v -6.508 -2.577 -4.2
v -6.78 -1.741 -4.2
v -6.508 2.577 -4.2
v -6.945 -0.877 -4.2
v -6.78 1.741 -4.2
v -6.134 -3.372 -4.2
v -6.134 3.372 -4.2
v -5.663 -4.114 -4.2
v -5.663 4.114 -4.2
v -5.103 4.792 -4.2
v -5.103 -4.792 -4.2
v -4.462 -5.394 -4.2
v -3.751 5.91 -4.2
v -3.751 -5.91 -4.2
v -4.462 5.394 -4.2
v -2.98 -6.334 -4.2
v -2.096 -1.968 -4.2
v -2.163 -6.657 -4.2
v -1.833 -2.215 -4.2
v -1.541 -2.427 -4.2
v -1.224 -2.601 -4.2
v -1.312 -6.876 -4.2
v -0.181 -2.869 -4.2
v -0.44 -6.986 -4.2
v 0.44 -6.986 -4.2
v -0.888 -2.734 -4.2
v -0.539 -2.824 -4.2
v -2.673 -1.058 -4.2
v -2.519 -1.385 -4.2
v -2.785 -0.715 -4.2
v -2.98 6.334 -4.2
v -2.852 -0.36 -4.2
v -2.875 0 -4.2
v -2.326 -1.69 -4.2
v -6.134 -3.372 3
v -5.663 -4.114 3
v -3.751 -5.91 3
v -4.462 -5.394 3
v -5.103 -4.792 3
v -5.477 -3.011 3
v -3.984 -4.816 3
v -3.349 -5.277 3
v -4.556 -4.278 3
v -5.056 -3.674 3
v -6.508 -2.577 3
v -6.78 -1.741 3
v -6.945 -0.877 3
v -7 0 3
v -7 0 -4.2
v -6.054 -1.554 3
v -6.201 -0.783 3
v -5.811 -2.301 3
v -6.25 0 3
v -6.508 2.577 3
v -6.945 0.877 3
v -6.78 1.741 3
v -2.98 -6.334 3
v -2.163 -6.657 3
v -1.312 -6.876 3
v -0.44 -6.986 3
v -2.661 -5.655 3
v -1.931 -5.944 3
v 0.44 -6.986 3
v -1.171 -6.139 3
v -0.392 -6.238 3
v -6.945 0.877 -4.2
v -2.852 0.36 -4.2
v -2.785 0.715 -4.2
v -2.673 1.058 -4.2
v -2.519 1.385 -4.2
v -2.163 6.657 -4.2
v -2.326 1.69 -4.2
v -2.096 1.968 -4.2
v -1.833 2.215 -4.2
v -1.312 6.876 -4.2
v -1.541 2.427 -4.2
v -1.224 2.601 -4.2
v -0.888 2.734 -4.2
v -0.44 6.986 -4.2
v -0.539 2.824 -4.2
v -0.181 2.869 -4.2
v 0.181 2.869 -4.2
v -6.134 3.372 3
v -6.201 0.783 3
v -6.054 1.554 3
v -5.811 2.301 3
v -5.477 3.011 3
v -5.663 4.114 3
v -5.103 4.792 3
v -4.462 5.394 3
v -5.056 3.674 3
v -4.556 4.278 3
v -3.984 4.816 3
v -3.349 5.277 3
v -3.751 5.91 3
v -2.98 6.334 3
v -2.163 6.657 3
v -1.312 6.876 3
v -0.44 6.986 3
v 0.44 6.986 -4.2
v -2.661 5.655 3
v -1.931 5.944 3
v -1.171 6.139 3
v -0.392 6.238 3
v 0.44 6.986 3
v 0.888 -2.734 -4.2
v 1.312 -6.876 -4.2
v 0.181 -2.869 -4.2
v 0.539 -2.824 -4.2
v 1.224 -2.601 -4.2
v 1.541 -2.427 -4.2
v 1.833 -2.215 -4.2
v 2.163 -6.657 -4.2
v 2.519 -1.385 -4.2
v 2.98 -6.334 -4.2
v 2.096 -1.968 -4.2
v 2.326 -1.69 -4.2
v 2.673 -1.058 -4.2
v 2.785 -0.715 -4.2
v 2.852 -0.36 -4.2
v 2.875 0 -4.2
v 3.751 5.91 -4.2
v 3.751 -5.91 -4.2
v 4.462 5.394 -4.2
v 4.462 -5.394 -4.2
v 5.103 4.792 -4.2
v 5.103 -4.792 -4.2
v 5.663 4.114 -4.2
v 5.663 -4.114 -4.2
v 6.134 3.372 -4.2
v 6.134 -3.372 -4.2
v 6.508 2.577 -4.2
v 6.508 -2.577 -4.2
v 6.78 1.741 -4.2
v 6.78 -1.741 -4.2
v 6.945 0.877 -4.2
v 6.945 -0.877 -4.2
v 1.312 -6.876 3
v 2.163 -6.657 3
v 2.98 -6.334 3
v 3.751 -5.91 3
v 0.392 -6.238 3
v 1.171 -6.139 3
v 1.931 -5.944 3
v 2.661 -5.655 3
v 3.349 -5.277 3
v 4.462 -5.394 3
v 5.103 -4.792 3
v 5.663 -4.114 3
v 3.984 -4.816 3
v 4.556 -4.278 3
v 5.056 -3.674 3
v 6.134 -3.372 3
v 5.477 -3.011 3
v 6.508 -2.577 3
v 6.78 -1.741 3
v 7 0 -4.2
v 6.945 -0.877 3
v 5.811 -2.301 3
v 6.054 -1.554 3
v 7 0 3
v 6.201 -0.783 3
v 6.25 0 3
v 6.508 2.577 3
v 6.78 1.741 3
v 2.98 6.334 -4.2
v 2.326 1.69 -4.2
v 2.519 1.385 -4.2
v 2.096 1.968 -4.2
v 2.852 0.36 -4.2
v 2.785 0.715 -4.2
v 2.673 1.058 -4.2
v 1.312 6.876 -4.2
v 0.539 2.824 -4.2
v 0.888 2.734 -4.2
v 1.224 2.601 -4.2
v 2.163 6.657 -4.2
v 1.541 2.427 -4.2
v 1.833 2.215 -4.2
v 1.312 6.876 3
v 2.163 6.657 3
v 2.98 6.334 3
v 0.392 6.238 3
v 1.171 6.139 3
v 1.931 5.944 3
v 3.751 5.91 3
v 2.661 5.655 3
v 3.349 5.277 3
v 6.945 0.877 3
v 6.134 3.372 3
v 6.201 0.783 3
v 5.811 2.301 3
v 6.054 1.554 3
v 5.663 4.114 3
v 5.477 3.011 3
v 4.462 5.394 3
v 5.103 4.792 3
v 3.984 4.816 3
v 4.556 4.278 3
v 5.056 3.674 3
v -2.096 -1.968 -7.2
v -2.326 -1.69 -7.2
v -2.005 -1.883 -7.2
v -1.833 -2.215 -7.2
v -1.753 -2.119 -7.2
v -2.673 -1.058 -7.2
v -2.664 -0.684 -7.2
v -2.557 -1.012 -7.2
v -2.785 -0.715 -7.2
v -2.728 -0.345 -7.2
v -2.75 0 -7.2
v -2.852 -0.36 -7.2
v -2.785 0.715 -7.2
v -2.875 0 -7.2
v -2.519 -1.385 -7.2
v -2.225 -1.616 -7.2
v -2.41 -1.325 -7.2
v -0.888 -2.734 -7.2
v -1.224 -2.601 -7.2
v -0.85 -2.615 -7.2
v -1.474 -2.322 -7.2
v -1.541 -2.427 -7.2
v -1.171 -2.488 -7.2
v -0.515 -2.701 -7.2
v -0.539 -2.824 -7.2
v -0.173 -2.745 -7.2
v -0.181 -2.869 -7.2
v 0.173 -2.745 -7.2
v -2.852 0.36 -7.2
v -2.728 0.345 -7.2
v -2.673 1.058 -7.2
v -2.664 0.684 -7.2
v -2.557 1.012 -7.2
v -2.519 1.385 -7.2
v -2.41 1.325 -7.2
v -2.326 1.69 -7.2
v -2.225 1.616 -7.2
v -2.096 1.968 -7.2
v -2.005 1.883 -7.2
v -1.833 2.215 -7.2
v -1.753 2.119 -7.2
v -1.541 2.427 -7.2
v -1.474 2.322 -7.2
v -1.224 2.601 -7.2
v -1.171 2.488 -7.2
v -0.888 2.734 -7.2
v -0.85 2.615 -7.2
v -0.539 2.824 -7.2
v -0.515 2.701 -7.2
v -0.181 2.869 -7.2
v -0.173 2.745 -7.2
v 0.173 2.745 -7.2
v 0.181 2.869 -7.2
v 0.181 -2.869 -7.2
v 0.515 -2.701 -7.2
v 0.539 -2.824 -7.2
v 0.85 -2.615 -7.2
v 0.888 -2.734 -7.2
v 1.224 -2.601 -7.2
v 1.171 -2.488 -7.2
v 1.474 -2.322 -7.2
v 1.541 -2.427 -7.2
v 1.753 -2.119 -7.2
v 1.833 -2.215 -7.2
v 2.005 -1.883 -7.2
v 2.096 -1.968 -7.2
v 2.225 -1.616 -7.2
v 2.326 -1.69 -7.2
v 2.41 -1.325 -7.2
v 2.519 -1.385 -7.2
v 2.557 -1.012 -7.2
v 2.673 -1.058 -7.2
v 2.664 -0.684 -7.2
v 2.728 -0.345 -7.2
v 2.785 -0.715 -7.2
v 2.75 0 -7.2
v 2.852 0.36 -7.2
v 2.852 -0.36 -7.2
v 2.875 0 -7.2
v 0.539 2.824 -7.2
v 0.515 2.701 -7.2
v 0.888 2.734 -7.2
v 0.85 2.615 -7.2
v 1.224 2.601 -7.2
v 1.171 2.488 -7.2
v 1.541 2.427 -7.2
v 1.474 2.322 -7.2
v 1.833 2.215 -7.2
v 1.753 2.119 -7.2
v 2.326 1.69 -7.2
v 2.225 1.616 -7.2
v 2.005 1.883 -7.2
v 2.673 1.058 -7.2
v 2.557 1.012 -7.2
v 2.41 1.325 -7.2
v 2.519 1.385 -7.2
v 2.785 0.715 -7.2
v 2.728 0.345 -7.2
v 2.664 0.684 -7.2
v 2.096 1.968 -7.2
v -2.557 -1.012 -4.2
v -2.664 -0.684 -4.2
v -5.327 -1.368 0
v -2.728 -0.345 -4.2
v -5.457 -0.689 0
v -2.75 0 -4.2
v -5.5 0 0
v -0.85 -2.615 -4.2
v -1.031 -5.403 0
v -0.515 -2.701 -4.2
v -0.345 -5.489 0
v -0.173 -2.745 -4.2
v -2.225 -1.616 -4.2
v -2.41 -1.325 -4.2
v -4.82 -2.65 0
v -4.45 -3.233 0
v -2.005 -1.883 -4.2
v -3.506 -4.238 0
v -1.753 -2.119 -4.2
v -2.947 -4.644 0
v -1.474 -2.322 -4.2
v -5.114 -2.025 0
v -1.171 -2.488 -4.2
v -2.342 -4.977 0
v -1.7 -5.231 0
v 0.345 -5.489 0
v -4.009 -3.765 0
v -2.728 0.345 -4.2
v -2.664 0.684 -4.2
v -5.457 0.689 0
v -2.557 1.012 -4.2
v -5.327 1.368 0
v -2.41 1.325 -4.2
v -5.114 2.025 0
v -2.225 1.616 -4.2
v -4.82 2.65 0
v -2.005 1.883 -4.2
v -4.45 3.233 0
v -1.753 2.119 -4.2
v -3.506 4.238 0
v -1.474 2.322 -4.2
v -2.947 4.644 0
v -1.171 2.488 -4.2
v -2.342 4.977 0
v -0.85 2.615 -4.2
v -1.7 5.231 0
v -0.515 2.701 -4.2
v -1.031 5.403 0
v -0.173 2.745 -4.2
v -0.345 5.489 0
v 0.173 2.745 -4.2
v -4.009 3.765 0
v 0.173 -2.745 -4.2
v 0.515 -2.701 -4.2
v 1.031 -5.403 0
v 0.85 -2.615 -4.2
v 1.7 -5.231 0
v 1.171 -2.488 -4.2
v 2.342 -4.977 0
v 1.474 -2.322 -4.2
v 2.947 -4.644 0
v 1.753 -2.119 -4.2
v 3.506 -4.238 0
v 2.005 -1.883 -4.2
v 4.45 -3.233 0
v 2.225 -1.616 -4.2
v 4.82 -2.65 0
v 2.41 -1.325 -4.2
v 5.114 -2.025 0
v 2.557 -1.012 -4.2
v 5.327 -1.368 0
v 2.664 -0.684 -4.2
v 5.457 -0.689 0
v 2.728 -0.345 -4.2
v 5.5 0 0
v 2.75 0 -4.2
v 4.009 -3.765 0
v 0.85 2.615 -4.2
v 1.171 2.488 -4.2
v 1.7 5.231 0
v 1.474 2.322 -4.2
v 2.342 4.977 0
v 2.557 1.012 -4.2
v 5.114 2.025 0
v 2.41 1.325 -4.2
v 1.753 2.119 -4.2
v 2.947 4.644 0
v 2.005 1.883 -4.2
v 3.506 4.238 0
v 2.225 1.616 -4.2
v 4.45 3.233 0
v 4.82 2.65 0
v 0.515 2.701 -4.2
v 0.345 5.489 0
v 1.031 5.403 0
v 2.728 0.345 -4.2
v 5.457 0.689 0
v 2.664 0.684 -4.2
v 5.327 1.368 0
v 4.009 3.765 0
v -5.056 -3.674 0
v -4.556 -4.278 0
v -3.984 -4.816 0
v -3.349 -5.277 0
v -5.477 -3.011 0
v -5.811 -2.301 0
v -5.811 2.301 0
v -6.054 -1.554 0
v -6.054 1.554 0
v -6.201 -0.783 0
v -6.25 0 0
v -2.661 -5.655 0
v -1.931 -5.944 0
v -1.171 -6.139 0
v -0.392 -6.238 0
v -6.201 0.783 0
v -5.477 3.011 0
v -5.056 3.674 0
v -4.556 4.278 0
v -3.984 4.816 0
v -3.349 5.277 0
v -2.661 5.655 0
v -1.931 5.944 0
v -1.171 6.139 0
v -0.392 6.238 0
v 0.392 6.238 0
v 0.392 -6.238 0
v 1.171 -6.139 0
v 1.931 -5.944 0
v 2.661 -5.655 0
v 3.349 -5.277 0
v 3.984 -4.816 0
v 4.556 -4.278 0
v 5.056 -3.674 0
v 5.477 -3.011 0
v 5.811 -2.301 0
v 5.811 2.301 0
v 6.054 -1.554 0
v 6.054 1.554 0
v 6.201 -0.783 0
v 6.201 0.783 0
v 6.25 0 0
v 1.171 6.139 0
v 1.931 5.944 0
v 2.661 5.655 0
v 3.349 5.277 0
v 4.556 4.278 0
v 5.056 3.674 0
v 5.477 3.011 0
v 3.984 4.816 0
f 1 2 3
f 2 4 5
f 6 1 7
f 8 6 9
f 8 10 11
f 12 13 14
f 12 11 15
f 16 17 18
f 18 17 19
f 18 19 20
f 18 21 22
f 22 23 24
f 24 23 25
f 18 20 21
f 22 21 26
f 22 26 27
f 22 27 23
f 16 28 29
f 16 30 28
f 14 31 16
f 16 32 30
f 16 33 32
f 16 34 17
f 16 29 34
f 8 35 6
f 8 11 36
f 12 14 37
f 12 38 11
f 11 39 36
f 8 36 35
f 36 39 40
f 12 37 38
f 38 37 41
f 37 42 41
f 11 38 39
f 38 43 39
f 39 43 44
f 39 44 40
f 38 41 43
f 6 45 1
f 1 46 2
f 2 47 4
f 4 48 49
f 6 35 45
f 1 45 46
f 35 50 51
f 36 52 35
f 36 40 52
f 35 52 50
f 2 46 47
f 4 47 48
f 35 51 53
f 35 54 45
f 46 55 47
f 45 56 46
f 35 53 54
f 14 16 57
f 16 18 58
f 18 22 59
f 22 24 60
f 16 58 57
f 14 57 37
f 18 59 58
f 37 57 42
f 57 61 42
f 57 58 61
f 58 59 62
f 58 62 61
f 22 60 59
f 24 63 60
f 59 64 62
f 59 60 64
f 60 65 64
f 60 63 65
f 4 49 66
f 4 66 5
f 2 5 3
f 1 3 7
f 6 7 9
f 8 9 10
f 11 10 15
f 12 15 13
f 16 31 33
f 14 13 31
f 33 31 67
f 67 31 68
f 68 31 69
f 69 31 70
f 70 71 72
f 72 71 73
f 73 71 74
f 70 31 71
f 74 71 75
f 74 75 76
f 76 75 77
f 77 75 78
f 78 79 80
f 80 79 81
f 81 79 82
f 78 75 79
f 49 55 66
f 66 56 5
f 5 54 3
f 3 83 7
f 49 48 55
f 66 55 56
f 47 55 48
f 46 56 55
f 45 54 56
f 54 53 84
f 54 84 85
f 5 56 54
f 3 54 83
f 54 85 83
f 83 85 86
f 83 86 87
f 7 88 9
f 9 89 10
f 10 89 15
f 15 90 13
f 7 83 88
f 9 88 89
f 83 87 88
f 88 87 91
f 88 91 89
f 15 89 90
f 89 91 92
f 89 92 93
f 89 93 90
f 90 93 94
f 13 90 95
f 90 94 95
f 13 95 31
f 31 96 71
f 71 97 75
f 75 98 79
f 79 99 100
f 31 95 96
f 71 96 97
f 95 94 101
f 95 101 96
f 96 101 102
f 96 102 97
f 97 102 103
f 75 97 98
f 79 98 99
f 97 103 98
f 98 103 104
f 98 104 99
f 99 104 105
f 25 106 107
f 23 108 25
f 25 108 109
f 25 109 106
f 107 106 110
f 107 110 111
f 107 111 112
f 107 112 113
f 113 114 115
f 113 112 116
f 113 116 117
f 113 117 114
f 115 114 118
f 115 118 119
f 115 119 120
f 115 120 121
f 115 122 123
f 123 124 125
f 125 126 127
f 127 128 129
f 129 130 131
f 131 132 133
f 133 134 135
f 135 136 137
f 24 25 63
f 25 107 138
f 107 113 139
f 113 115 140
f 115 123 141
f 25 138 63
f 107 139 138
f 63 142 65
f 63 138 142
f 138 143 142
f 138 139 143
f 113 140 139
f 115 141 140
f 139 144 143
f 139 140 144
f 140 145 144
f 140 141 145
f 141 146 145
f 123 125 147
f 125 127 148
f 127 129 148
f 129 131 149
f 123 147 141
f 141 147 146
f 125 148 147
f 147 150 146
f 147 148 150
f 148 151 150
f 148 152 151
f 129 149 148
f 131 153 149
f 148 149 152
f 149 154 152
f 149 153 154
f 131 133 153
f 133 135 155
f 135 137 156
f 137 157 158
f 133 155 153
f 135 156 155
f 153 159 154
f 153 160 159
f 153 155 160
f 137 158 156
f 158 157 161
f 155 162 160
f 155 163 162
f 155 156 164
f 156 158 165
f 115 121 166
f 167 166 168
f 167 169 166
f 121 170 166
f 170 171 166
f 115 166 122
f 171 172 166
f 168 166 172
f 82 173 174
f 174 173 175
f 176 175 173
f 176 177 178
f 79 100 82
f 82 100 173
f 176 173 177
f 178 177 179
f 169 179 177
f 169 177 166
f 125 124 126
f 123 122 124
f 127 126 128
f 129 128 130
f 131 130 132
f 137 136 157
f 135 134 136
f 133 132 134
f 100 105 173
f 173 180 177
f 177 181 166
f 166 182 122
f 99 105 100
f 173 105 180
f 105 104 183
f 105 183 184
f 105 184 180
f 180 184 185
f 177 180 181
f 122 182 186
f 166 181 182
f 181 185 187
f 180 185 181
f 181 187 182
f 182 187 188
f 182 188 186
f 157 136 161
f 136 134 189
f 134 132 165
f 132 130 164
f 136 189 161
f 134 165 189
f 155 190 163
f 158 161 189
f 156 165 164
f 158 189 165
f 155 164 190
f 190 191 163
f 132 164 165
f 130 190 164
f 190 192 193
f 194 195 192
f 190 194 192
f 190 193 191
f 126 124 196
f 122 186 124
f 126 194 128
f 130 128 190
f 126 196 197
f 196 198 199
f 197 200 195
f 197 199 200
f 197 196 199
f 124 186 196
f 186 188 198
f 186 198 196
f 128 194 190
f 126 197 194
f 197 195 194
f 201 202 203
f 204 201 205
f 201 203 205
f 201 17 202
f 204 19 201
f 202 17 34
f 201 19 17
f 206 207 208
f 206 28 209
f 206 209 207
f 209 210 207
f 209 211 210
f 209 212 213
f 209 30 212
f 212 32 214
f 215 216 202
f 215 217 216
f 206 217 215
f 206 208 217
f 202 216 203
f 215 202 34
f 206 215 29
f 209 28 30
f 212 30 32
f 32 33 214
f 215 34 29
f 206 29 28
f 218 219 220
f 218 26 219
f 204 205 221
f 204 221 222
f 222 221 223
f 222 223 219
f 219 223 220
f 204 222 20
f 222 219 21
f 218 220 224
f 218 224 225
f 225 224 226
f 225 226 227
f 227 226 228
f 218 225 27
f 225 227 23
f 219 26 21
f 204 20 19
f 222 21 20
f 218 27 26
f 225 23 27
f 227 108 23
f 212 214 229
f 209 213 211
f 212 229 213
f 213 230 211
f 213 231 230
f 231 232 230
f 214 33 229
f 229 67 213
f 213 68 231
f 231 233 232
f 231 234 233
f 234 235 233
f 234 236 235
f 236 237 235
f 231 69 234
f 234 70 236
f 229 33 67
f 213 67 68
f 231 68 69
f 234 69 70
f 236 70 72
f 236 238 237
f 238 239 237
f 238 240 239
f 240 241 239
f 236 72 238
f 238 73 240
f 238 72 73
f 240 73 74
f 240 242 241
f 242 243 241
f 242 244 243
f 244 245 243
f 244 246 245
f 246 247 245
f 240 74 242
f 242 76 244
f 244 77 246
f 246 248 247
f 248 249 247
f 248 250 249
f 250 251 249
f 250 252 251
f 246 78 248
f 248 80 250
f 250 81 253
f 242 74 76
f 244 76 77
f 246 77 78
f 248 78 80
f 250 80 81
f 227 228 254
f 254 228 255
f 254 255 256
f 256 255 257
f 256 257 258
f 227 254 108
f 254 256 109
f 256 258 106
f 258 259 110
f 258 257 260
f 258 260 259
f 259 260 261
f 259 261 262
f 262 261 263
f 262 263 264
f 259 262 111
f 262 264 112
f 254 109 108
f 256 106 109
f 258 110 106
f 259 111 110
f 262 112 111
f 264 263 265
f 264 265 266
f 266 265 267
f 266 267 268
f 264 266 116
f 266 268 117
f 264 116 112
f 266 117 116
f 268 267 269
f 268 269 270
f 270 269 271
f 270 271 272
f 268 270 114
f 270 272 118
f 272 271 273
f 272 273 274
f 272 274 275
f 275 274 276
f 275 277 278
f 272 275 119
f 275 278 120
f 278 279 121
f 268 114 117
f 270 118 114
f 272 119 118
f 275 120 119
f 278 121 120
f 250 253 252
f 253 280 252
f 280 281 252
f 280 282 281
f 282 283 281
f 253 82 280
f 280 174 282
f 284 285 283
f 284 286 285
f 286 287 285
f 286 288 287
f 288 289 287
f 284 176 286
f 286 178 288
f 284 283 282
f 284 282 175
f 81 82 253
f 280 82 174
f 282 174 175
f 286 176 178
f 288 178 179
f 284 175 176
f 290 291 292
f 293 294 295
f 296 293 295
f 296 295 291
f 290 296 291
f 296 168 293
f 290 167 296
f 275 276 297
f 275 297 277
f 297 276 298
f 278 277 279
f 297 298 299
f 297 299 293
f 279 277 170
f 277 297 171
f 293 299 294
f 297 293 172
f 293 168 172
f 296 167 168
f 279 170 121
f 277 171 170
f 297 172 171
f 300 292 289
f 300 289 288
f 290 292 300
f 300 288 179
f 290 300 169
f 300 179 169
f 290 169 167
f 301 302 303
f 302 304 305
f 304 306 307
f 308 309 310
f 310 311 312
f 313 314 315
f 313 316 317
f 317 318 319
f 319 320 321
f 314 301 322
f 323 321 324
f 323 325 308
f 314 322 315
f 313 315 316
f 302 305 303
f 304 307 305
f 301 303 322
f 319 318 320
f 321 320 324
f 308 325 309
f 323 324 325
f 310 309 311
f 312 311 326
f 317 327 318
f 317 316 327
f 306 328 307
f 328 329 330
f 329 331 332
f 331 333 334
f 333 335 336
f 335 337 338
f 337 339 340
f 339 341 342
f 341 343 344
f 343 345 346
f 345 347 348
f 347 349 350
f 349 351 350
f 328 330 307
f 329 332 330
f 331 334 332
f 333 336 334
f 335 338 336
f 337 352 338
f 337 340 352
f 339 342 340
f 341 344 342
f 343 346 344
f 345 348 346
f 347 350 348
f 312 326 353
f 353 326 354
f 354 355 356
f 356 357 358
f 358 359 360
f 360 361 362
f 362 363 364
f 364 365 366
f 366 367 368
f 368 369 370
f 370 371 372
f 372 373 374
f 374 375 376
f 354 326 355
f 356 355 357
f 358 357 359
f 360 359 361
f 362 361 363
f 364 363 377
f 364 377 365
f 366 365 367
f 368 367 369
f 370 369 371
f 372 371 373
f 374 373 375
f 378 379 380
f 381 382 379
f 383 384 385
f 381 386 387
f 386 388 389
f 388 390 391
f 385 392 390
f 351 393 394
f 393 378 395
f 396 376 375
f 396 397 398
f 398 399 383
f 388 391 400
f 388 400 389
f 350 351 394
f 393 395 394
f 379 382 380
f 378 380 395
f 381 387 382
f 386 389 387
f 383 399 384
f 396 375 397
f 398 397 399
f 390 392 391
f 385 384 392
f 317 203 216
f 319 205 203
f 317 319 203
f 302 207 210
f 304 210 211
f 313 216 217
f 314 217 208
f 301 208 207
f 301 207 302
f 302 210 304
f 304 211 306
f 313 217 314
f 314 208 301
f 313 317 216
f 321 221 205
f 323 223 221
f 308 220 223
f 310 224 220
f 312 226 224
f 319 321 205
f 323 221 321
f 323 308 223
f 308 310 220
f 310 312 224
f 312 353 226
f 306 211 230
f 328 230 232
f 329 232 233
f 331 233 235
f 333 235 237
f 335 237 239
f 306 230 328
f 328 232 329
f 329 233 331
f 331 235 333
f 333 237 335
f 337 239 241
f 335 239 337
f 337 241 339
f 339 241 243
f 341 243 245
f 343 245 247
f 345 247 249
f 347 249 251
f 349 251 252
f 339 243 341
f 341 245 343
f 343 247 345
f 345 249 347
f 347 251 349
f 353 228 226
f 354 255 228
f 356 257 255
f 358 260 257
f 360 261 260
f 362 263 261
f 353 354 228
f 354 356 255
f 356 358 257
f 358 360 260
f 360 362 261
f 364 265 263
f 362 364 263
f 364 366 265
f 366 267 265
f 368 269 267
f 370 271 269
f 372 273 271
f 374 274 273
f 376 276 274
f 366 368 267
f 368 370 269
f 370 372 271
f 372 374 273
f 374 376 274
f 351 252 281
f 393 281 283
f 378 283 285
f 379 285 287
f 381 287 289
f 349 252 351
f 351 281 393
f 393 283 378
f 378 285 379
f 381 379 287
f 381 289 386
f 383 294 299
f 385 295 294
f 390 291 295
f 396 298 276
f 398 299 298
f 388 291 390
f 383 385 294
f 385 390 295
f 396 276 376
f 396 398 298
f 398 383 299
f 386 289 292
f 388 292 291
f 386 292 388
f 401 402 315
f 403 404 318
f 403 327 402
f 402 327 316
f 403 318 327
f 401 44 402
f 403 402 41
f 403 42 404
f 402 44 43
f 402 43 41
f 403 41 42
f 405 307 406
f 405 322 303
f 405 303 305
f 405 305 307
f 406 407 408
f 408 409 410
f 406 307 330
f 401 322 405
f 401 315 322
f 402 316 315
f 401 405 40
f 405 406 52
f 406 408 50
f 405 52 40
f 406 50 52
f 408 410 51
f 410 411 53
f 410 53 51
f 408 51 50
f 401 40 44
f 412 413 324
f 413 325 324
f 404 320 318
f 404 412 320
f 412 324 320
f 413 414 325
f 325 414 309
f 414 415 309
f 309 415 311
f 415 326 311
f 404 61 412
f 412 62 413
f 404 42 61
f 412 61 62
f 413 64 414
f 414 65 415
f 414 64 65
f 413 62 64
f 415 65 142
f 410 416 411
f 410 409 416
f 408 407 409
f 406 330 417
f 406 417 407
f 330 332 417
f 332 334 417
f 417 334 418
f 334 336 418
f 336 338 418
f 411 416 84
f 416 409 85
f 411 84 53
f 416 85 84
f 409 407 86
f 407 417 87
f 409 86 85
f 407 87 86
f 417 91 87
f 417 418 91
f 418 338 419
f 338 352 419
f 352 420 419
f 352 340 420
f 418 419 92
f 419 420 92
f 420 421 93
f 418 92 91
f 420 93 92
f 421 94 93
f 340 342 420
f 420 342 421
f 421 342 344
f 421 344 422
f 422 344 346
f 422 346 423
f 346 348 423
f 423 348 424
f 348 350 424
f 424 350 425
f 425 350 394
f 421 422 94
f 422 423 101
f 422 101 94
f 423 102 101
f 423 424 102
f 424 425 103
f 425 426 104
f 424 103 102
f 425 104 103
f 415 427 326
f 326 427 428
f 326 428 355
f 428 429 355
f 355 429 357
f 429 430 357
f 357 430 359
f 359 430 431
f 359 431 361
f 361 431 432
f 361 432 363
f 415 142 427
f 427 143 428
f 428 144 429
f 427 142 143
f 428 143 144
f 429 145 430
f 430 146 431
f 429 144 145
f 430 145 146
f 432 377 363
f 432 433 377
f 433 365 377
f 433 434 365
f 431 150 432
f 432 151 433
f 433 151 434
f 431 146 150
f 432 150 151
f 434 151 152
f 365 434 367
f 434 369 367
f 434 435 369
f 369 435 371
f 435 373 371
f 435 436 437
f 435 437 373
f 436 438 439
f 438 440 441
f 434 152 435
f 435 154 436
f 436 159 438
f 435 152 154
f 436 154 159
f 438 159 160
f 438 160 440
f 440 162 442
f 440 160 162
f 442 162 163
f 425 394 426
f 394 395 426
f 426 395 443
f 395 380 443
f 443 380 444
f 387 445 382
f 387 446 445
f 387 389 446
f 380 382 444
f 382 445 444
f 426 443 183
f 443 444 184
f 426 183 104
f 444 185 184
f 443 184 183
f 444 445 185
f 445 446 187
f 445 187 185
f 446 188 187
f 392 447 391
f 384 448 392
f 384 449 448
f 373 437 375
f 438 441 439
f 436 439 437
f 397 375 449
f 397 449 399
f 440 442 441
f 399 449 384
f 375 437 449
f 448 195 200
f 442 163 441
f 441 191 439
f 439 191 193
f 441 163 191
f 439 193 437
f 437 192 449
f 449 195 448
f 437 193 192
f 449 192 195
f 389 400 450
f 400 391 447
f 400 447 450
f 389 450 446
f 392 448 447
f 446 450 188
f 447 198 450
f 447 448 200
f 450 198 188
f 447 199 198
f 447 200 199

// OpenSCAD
$fn = 50;


difference() {
	union() {
		translate(v = [0, 0, -4.2000000000]) {
			cylinder(h = 7.2000000000, r = 7.0000000000);
		}
		#translate(v = [0, 0, -7.2000000000]) {
			cylinder(h = 7.2000000000, r = 2.8750000000);
		}
	}
	union() {
		translate(v = [0, 0, 0]) {
			rotate(a = [0, 0, 0]) {
				difference() {
					union() {
						translate(v = [0, 0, -7.2000000000]) {
							cylinder(h = 7.2000000000, r = 2.2500000000);
						}
						translate(v = [0, 0, -4.2000000000]) {
							cylinder(h = 4.2000000000, r1 = 2.7500000000, r2 = 5.5000000000);
						}
						translate(v = [0, 0, -7.2000000000]) {
							cylinder(h = 7.2000000000, r = 2.7500000000);
						}
						translate(v = [0, 0, -7.2000000000]) {
							cylinder(h = 7.2000000000, r = 2.2500000000);
						}
					}
					union();
				}
			}
		}
		#cylinder(h = 3, r = 6.2500000000);
	}
}
